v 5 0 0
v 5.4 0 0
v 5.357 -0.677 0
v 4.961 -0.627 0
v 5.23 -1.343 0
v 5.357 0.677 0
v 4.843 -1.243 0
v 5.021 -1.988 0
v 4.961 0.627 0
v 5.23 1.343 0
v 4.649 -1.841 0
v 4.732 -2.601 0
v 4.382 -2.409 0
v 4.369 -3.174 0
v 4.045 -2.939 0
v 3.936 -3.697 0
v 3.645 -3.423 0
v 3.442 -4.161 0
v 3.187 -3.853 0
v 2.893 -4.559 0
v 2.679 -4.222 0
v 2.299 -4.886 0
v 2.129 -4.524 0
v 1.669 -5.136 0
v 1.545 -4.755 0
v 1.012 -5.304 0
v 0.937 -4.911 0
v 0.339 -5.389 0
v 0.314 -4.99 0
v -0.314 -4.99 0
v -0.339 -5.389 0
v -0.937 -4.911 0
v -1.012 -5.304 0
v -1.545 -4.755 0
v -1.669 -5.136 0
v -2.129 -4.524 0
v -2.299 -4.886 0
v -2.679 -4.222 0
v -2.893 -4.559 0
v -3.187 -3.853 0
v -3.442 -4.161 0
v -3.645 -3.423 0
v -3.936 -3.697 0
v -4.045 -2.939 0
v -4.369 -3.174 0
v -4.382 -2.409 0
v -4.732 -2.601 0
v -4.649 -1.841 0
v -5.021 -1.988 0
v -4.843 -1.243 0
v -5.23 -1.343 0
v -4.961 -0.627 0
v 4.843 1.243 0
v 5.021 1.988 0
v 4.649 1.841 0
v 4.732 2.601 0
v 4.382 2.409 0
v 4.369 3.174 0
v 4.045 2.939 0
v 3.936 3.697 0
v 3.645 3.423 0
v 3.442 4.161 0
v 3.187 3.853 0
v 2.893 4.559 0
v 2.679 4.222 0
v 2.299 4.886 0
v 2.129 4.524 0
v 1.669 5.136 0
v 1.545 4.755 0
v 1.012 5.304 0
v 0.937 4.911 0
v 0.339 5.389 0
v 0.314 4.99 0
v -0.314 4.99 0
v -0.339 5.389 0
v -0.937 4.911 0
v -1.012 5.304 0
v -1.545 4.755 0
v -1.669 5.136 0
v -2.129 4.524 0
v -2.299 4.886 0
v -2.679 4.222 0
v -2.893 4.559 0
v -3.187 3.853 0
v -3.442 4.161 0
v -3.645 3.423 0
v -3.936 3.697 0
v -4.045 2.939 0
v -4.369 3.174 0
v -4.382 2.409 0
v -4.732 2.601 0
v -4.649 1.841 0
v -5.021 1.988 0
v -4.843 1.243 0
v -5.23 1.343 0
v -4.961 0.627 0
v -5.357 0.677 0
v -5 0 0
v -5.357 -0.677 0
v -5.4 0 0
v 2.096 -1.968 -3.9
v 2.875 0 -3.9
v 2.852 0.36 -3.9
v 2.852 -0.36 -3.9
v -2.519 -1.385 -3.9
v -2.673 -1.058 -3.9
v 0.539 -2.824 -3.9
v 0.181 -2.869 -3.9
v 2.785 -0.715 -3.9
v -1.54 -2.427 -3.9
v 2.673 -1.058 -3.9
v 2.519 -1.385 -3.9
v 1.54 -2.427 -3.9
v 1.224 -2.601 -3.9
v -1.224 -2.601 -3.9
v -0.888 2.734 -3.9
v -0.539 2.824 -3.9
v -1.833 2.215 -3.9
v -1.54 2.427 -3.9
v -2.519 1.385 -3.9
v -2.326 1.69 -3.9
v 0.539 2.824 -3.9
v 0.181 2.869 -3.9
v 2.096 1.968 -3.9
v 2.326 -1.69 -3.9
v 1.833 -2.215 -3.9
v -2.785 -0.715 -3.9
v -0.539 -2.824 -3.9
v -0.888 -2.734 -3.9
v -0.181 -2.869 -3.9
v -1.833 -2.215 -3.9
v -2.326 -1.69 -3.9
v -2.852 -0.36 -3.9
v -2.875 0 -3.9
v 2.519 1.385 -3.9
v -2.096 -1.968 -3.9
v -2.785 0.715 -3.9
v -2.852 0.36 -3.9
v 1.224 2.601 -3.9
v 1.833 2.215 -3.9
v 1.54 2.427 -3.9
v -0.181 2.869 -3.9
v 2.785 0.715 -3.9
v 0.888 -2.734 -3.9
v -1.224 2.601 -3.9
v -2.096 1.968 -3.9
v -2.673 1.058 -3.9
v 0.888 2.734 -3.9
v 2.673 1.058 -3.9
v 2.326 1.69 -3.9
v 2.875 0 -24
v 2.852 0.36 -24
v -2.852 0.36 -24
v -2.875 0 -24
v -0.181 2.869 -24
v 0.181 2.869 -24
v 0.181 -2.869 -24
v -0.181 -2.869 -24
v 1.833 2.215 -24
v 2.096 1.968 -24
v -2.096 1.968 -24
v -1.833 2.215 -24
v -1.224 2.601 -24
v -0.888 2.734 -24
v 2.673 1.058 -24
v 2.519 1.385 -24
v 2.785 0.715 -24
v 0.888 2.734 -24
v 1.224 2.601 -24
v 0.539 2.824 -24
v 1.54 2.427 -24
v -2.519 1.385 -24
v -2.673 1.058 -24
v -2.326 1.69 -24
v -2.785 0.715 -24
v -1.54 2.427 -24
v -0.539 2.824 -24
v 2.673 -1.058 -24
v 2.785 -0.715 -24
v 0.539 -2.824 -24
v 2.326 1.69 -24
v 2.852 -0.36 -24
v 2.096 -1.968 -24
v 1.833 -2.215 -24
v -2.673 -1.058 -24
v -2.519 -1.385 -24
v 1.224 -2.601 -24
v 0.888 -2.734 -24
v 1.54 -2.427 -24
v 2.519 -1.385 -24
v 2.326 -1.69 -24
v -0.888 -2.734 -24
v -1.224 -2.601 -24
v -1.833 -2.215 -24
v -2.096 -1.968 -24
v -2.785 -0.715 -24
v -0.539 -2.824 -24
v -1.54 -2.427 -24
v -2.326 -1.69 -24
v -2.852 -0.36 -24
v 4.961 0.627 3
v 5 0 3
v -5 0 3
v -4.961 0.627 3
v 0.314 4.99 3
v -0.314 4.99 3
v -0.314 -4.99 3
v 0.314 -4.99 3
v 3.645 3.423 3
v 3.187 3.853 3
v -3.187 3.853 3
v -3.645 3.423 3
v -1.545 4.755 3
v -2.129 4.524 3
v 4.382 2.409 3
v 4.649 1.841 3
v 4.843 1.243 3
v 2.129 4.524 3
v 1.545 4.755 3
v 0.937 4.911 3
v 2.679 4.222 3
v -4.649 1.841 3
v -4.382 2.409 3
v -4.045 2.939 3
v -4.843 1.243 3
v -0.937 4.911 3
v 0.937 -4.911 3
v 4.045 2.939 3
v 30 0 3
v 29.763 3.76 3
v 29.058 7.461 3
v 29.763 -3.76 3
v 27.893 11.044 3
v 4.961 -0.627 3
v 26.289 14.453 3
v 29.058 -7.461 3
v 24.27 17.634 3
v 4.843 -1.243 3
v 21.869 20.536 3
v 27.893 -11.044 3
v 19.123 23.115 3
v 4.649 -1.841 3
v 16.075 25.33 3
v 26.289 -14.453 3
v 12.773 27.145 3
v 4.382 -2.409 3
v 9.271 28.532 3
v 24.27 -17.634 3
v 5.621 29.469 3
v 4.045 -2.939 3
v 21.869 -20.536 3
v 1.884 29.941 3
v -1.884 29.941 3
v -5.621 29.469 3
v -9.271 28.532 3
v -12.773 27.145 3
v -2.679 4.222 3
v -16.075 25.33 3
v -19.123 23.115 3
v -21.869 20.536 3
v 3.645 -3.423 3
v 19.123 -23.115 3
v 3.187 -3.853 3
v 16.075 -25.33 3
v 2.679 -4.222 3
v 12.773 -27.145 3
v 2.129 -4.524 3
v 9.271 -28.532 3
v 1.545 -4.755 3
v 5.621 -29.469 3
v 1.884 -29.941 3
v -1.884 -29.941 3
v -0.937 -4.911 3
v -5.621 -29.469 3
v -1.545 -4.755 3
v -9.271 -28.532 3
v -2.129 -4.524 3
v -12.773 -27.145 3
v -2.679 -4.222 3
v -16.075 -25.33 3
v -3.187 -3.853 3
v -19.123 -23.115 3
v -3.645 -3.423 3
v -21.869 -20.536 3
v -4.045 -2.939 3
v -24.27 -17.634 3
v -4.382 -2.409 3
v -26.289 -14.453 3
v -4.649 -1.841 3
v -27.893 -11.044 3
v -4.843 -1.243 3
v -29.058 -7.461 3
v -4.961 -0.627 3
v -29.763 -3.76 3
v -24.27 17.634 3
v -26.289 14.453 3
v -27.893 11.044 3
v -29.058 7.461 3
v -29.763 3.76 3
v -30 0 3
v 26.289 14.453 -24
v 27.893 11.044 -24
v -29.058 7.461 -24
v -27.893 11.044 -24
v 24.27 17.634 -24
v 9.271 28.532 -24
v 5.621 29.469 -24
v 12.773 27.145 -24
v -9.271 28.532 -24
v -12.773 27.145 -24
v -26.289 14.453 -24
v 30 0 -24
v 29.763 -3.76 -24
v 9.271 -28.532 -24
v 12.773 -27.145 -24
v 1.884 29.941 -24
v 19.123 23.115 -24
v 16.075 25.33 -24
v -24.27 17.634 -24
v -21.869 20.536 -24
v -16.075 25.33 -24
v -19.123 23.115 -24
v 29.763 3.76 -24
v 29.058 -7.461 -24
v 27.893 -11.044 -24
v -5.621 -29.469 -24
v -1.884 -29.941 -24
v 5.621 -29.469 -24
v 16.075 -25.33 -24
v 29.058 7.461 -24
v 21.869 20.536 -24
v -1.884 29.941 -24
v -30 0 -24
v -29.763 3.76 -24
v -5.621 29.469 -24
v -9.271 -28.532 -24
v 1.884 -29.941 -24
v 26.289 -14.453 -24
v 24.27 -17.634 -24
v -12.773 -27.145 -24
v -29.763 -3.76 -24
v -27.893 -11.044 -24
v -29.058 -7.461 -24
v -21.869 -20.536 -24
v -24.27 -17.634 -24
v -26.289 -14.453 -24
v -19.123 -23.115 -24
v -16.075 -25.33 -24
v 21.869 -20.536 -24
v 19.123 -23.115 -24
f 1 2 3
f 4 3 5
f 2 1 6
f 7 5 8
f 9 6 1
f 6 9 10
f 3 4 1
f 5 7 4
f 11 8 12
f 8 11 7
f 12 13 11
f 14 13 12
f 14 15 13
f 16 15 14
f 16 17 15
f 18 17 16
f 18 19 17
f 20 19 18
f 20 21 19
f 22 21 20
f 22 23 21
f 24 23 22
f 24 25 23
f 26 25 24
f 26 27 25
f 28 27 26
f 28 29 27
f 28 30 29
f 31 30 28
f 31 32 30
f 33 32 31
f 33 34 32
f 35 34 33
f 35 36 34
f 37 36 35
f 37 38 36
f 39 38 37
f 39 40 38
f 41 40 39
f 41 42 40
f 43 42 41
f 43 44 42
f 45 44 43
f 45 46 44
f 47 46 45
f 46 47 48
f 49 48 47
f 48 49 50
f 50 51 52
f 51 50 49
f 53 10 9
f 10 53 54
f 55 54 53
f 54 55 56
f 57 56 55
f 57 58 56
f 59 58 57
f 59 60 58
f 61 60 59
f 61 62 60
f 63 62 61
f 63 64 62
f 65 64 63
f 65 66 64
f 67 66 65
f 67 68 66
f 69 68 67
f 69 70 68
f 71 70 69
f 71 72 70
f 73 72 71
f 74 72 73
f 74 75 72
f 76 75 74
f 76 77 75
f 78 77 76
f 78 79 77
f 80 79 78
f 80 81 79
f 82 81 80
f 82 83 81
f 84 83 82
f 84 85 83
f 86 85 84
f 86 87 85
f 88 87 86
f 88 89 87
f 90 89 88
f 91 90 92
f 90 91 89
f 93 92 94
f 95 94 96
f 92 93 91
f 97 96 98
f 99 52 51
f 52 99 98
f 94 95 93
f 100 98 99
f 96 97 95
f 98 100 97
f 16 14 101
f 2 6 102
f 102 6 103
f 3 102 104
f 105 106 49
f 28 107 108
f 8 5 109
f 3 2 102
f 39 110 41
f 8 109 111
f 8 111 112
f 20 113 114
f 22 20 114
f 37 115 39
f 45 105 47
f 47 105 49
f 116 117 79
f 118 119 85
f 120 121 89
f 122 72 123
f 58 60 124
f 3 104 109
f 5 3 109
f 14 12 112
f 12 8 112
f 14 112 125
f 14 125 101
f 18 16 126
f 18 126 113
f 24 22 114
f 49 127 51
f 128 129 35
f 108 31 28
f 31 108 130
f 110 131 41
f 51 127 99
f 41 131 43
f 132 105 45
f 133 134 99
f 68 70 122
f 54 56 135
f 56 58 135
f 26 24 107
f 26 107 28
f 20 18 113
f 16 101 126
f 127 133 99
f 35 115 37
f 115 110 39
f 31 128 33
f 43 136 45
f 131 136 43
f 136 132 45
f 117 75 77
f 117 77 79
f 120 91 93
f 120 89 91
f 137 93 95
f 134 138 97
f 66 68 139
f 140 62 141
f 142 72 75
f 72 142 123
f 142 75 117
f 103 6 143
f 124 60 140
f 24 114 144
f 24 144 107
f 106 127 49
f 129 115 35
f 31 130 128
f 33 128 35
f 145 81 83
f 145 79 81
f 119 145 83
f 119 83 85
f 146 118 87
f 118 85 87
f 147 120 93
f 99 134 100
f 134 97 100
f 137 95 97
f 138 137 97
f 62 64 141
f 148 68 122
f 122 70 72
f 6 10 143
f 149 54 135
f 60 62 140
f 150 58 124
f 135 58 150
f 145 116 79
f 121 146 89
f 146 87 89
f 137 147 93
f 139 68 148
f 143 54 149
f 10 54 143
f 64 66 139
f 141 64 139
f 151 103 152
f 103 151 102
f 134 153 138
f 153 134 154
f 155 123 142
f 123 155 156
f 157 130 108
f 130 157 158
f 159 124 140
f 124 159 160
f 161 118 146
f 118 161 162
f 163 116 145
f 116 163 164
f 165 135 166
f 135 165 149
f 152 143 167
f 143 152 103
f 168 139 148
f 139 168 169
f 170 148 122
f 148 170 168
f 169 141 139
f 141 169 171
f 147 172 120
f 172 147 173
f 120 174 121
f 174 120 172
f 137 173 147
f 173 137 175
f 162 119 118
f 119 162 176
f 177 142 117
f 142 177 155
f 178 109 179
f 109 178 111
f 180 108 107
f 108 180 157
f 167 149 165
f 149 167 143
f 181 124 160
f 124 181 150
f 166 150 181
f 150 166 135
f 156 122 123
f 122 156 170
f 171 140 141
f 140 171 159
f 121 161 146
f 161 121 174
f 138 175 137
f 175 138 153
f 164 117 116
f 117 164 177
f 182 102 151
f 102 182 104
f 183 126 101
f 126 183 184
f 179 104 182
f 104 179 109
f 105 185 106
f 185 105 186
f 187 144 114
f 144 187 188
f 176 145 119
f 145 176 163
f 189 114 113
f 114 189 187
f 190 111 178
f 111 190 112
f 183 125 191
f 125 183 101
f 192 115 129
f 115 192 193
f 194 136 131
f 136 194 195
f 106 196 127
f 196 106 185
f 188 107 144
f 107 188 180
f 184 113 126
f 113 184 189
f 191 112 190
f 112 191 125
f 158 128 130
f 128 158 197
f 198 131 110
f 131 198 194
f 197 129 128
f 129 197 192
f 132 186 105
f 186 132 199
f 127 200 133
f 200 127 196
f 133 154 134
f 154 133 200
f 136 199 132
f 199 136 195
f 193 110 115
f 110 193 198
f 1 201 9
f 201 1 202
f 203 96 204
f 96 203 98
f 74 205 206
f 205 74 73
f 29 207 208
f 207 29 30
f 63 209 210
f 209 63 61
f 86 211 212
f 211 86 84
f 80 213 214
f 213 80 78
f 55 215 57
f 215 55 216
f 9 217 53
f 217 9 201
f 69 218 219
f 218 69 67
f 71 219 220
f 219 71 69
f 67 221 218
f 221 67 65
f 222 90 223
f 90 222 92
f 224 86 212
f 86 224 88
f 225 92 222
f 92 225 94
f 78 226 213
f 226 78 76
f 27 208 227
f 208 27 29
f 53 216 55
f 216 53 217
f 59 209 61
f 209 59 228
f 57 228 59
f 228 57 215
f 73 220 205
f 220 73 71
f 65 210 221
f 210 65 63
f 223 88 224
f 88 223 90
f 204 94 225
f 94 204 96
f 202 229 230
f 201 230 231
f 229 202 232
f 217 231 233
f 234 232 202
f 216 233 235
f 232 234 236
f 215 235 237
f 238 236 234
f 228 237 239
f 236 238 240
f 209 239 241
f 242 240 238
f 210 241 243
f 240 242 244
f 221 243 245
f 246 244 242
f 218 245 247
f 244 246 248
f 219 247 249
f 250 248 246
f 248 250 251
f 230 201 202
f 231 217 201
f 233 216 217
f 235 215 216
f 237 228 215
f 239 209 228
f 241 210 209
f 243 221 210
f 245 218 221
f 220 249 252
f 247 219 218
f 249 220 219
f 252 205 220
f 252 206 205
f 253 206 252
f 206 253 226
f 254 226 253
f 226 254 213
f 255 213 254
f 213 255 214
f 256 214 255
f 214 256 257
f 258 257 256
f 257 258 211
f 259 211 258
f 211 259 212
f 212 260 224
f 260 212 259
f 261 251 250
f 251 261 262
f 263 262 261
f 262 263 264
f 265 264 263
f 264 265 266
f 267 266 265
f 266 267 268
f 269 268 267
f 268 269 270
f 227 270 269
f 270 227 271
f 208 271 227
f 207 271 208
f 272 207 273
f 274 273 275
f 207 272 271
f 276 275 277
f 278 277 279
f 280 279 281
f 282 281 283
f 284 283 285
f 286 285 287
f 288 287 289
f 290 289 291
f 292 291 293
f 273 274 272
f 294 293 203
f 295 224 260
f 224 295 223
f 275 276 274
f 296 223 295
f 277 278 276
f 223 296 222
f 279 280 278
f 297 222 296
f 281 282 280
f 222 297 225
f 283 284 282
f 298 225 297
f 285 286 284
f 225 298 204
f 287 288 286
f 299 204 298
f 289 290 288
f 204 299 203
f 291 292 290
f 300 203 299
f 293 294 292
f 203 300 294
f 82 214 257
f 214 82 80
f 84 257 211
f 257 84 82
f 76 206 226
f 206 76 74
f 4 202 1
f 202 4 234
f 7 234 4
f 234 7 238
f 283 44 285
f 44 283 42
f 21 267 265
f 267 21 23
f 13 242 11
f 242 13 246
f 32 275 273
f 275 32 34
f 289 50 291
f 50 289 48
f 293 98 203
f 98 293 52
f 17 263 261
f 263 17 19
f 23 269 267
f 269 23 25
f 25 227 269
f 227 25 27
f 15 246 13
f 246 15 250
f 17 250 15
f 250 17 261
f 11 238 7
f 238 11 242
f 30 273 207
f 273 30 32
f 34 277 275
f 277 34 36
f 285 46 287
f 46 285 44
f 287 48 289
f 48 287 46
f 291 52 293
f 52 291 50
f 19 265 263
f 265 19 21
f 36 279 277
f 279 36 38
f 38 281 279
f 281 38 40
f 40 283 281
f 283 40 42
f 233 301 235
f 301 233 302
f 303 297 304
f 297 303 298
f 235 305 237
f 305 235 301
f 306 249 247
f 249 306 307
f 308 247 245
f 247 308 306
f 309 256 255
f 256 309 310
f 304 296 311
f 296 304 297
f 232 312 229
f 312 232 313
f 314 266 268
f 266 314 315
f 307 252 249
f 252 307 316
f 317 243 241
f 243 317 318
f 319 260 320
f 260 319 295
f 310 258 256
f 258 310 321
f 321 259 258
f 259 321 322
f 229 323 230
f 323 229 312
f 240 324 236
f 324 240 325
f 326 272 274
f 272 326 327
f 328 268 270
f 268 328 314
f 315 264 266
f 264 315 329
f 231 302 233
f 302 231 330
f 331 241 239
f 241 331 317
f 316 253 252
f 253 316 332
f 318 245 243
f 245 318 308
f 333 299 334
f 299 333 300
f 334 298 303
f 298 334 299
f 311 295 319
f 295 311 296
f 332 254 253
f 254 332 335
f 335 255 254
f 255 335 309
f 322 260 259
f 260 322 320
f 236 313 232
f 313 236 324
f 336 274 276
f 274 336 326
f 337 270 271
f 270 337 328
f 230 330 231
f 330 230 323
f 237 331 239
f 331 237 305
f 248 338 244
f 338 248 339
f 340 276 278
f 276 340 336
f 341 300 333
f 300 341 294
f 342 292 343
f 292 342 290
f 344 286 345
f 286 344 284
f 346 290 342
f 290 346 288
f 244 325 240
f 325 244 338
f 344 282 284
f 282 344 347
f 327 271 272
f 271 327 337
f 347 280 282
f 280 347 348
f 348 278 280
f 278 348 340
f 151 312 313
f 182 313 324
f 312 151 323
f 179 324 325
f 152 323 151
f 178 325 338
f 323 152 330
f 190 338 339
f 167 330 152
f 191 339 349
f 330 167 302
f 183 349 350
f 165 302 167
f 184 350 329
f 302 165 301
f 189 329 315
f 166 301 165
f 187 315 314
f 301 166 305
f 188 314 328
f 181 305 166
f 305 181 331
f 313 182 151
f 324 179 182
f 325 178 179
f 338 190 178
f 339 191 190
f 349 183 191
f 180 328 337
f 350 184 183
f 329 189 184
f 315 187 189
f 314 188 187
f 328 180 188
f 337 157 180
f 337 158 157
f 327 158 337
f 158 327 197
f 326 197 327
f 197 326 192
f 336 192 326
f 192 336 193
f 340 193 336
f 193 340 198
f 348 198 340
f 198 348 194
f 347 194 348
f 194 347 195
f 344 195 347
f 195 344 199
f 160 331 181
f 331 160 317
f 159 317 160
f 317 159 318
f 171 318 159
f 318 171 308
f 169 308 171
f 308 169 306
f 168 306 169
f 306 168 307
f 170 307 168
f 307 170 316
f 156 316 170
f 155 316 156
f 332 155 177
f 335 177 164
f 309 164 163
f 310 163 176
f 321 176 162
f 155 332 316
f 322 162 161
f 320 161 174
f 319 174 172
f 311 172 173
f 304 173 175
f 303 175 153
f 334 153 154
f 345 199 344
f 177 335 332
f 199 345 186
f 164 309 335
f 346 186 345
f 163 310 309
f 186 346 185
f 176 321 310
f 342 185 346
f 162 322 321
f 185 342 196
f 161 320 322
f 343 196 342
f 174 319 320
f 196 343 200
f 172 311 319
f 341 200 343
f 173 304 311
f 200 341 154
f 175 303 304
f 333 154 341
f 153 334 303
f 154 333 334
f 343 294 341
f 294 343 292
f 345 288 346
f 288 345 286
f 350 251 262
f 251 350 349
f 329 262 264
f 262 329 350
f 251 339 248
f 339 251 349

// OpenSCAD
$fn = 50;


difference() {
	union() {
		translate(v = [0, 0, -24.0000000000]) {
			cylinder(h = 27, r = 30.0000000000);
		}
	}
	union() {
		translate(v = [0, 0, 0]) {
			rotate(a = [0, 0, 0]) {
				difference() {
					union() {
						translate(v = [0, 0, -27.0000000000]) {
							cylinder(h = 27, r = 2.6000000000);
						}
						translate(v = [0, 0, -3.9000000000]) {
							cylinder(h = 3.9000000000, r1 = 2.8750000000, r2 = 5.4000000000);
						}
						translate(v = [0, 0, -27.0000000000]) {
							cylinder(h = 27, r = 2.8750000000);
						}
						translate(v = [0, 0, -27.0000000000]) {
							cylinder(h = 27, r = 2.6000000000);
						}
					}
					union();
				}
			}
		}
		#cylinder(h = 3, r = 5.0000000000);
	}
}
